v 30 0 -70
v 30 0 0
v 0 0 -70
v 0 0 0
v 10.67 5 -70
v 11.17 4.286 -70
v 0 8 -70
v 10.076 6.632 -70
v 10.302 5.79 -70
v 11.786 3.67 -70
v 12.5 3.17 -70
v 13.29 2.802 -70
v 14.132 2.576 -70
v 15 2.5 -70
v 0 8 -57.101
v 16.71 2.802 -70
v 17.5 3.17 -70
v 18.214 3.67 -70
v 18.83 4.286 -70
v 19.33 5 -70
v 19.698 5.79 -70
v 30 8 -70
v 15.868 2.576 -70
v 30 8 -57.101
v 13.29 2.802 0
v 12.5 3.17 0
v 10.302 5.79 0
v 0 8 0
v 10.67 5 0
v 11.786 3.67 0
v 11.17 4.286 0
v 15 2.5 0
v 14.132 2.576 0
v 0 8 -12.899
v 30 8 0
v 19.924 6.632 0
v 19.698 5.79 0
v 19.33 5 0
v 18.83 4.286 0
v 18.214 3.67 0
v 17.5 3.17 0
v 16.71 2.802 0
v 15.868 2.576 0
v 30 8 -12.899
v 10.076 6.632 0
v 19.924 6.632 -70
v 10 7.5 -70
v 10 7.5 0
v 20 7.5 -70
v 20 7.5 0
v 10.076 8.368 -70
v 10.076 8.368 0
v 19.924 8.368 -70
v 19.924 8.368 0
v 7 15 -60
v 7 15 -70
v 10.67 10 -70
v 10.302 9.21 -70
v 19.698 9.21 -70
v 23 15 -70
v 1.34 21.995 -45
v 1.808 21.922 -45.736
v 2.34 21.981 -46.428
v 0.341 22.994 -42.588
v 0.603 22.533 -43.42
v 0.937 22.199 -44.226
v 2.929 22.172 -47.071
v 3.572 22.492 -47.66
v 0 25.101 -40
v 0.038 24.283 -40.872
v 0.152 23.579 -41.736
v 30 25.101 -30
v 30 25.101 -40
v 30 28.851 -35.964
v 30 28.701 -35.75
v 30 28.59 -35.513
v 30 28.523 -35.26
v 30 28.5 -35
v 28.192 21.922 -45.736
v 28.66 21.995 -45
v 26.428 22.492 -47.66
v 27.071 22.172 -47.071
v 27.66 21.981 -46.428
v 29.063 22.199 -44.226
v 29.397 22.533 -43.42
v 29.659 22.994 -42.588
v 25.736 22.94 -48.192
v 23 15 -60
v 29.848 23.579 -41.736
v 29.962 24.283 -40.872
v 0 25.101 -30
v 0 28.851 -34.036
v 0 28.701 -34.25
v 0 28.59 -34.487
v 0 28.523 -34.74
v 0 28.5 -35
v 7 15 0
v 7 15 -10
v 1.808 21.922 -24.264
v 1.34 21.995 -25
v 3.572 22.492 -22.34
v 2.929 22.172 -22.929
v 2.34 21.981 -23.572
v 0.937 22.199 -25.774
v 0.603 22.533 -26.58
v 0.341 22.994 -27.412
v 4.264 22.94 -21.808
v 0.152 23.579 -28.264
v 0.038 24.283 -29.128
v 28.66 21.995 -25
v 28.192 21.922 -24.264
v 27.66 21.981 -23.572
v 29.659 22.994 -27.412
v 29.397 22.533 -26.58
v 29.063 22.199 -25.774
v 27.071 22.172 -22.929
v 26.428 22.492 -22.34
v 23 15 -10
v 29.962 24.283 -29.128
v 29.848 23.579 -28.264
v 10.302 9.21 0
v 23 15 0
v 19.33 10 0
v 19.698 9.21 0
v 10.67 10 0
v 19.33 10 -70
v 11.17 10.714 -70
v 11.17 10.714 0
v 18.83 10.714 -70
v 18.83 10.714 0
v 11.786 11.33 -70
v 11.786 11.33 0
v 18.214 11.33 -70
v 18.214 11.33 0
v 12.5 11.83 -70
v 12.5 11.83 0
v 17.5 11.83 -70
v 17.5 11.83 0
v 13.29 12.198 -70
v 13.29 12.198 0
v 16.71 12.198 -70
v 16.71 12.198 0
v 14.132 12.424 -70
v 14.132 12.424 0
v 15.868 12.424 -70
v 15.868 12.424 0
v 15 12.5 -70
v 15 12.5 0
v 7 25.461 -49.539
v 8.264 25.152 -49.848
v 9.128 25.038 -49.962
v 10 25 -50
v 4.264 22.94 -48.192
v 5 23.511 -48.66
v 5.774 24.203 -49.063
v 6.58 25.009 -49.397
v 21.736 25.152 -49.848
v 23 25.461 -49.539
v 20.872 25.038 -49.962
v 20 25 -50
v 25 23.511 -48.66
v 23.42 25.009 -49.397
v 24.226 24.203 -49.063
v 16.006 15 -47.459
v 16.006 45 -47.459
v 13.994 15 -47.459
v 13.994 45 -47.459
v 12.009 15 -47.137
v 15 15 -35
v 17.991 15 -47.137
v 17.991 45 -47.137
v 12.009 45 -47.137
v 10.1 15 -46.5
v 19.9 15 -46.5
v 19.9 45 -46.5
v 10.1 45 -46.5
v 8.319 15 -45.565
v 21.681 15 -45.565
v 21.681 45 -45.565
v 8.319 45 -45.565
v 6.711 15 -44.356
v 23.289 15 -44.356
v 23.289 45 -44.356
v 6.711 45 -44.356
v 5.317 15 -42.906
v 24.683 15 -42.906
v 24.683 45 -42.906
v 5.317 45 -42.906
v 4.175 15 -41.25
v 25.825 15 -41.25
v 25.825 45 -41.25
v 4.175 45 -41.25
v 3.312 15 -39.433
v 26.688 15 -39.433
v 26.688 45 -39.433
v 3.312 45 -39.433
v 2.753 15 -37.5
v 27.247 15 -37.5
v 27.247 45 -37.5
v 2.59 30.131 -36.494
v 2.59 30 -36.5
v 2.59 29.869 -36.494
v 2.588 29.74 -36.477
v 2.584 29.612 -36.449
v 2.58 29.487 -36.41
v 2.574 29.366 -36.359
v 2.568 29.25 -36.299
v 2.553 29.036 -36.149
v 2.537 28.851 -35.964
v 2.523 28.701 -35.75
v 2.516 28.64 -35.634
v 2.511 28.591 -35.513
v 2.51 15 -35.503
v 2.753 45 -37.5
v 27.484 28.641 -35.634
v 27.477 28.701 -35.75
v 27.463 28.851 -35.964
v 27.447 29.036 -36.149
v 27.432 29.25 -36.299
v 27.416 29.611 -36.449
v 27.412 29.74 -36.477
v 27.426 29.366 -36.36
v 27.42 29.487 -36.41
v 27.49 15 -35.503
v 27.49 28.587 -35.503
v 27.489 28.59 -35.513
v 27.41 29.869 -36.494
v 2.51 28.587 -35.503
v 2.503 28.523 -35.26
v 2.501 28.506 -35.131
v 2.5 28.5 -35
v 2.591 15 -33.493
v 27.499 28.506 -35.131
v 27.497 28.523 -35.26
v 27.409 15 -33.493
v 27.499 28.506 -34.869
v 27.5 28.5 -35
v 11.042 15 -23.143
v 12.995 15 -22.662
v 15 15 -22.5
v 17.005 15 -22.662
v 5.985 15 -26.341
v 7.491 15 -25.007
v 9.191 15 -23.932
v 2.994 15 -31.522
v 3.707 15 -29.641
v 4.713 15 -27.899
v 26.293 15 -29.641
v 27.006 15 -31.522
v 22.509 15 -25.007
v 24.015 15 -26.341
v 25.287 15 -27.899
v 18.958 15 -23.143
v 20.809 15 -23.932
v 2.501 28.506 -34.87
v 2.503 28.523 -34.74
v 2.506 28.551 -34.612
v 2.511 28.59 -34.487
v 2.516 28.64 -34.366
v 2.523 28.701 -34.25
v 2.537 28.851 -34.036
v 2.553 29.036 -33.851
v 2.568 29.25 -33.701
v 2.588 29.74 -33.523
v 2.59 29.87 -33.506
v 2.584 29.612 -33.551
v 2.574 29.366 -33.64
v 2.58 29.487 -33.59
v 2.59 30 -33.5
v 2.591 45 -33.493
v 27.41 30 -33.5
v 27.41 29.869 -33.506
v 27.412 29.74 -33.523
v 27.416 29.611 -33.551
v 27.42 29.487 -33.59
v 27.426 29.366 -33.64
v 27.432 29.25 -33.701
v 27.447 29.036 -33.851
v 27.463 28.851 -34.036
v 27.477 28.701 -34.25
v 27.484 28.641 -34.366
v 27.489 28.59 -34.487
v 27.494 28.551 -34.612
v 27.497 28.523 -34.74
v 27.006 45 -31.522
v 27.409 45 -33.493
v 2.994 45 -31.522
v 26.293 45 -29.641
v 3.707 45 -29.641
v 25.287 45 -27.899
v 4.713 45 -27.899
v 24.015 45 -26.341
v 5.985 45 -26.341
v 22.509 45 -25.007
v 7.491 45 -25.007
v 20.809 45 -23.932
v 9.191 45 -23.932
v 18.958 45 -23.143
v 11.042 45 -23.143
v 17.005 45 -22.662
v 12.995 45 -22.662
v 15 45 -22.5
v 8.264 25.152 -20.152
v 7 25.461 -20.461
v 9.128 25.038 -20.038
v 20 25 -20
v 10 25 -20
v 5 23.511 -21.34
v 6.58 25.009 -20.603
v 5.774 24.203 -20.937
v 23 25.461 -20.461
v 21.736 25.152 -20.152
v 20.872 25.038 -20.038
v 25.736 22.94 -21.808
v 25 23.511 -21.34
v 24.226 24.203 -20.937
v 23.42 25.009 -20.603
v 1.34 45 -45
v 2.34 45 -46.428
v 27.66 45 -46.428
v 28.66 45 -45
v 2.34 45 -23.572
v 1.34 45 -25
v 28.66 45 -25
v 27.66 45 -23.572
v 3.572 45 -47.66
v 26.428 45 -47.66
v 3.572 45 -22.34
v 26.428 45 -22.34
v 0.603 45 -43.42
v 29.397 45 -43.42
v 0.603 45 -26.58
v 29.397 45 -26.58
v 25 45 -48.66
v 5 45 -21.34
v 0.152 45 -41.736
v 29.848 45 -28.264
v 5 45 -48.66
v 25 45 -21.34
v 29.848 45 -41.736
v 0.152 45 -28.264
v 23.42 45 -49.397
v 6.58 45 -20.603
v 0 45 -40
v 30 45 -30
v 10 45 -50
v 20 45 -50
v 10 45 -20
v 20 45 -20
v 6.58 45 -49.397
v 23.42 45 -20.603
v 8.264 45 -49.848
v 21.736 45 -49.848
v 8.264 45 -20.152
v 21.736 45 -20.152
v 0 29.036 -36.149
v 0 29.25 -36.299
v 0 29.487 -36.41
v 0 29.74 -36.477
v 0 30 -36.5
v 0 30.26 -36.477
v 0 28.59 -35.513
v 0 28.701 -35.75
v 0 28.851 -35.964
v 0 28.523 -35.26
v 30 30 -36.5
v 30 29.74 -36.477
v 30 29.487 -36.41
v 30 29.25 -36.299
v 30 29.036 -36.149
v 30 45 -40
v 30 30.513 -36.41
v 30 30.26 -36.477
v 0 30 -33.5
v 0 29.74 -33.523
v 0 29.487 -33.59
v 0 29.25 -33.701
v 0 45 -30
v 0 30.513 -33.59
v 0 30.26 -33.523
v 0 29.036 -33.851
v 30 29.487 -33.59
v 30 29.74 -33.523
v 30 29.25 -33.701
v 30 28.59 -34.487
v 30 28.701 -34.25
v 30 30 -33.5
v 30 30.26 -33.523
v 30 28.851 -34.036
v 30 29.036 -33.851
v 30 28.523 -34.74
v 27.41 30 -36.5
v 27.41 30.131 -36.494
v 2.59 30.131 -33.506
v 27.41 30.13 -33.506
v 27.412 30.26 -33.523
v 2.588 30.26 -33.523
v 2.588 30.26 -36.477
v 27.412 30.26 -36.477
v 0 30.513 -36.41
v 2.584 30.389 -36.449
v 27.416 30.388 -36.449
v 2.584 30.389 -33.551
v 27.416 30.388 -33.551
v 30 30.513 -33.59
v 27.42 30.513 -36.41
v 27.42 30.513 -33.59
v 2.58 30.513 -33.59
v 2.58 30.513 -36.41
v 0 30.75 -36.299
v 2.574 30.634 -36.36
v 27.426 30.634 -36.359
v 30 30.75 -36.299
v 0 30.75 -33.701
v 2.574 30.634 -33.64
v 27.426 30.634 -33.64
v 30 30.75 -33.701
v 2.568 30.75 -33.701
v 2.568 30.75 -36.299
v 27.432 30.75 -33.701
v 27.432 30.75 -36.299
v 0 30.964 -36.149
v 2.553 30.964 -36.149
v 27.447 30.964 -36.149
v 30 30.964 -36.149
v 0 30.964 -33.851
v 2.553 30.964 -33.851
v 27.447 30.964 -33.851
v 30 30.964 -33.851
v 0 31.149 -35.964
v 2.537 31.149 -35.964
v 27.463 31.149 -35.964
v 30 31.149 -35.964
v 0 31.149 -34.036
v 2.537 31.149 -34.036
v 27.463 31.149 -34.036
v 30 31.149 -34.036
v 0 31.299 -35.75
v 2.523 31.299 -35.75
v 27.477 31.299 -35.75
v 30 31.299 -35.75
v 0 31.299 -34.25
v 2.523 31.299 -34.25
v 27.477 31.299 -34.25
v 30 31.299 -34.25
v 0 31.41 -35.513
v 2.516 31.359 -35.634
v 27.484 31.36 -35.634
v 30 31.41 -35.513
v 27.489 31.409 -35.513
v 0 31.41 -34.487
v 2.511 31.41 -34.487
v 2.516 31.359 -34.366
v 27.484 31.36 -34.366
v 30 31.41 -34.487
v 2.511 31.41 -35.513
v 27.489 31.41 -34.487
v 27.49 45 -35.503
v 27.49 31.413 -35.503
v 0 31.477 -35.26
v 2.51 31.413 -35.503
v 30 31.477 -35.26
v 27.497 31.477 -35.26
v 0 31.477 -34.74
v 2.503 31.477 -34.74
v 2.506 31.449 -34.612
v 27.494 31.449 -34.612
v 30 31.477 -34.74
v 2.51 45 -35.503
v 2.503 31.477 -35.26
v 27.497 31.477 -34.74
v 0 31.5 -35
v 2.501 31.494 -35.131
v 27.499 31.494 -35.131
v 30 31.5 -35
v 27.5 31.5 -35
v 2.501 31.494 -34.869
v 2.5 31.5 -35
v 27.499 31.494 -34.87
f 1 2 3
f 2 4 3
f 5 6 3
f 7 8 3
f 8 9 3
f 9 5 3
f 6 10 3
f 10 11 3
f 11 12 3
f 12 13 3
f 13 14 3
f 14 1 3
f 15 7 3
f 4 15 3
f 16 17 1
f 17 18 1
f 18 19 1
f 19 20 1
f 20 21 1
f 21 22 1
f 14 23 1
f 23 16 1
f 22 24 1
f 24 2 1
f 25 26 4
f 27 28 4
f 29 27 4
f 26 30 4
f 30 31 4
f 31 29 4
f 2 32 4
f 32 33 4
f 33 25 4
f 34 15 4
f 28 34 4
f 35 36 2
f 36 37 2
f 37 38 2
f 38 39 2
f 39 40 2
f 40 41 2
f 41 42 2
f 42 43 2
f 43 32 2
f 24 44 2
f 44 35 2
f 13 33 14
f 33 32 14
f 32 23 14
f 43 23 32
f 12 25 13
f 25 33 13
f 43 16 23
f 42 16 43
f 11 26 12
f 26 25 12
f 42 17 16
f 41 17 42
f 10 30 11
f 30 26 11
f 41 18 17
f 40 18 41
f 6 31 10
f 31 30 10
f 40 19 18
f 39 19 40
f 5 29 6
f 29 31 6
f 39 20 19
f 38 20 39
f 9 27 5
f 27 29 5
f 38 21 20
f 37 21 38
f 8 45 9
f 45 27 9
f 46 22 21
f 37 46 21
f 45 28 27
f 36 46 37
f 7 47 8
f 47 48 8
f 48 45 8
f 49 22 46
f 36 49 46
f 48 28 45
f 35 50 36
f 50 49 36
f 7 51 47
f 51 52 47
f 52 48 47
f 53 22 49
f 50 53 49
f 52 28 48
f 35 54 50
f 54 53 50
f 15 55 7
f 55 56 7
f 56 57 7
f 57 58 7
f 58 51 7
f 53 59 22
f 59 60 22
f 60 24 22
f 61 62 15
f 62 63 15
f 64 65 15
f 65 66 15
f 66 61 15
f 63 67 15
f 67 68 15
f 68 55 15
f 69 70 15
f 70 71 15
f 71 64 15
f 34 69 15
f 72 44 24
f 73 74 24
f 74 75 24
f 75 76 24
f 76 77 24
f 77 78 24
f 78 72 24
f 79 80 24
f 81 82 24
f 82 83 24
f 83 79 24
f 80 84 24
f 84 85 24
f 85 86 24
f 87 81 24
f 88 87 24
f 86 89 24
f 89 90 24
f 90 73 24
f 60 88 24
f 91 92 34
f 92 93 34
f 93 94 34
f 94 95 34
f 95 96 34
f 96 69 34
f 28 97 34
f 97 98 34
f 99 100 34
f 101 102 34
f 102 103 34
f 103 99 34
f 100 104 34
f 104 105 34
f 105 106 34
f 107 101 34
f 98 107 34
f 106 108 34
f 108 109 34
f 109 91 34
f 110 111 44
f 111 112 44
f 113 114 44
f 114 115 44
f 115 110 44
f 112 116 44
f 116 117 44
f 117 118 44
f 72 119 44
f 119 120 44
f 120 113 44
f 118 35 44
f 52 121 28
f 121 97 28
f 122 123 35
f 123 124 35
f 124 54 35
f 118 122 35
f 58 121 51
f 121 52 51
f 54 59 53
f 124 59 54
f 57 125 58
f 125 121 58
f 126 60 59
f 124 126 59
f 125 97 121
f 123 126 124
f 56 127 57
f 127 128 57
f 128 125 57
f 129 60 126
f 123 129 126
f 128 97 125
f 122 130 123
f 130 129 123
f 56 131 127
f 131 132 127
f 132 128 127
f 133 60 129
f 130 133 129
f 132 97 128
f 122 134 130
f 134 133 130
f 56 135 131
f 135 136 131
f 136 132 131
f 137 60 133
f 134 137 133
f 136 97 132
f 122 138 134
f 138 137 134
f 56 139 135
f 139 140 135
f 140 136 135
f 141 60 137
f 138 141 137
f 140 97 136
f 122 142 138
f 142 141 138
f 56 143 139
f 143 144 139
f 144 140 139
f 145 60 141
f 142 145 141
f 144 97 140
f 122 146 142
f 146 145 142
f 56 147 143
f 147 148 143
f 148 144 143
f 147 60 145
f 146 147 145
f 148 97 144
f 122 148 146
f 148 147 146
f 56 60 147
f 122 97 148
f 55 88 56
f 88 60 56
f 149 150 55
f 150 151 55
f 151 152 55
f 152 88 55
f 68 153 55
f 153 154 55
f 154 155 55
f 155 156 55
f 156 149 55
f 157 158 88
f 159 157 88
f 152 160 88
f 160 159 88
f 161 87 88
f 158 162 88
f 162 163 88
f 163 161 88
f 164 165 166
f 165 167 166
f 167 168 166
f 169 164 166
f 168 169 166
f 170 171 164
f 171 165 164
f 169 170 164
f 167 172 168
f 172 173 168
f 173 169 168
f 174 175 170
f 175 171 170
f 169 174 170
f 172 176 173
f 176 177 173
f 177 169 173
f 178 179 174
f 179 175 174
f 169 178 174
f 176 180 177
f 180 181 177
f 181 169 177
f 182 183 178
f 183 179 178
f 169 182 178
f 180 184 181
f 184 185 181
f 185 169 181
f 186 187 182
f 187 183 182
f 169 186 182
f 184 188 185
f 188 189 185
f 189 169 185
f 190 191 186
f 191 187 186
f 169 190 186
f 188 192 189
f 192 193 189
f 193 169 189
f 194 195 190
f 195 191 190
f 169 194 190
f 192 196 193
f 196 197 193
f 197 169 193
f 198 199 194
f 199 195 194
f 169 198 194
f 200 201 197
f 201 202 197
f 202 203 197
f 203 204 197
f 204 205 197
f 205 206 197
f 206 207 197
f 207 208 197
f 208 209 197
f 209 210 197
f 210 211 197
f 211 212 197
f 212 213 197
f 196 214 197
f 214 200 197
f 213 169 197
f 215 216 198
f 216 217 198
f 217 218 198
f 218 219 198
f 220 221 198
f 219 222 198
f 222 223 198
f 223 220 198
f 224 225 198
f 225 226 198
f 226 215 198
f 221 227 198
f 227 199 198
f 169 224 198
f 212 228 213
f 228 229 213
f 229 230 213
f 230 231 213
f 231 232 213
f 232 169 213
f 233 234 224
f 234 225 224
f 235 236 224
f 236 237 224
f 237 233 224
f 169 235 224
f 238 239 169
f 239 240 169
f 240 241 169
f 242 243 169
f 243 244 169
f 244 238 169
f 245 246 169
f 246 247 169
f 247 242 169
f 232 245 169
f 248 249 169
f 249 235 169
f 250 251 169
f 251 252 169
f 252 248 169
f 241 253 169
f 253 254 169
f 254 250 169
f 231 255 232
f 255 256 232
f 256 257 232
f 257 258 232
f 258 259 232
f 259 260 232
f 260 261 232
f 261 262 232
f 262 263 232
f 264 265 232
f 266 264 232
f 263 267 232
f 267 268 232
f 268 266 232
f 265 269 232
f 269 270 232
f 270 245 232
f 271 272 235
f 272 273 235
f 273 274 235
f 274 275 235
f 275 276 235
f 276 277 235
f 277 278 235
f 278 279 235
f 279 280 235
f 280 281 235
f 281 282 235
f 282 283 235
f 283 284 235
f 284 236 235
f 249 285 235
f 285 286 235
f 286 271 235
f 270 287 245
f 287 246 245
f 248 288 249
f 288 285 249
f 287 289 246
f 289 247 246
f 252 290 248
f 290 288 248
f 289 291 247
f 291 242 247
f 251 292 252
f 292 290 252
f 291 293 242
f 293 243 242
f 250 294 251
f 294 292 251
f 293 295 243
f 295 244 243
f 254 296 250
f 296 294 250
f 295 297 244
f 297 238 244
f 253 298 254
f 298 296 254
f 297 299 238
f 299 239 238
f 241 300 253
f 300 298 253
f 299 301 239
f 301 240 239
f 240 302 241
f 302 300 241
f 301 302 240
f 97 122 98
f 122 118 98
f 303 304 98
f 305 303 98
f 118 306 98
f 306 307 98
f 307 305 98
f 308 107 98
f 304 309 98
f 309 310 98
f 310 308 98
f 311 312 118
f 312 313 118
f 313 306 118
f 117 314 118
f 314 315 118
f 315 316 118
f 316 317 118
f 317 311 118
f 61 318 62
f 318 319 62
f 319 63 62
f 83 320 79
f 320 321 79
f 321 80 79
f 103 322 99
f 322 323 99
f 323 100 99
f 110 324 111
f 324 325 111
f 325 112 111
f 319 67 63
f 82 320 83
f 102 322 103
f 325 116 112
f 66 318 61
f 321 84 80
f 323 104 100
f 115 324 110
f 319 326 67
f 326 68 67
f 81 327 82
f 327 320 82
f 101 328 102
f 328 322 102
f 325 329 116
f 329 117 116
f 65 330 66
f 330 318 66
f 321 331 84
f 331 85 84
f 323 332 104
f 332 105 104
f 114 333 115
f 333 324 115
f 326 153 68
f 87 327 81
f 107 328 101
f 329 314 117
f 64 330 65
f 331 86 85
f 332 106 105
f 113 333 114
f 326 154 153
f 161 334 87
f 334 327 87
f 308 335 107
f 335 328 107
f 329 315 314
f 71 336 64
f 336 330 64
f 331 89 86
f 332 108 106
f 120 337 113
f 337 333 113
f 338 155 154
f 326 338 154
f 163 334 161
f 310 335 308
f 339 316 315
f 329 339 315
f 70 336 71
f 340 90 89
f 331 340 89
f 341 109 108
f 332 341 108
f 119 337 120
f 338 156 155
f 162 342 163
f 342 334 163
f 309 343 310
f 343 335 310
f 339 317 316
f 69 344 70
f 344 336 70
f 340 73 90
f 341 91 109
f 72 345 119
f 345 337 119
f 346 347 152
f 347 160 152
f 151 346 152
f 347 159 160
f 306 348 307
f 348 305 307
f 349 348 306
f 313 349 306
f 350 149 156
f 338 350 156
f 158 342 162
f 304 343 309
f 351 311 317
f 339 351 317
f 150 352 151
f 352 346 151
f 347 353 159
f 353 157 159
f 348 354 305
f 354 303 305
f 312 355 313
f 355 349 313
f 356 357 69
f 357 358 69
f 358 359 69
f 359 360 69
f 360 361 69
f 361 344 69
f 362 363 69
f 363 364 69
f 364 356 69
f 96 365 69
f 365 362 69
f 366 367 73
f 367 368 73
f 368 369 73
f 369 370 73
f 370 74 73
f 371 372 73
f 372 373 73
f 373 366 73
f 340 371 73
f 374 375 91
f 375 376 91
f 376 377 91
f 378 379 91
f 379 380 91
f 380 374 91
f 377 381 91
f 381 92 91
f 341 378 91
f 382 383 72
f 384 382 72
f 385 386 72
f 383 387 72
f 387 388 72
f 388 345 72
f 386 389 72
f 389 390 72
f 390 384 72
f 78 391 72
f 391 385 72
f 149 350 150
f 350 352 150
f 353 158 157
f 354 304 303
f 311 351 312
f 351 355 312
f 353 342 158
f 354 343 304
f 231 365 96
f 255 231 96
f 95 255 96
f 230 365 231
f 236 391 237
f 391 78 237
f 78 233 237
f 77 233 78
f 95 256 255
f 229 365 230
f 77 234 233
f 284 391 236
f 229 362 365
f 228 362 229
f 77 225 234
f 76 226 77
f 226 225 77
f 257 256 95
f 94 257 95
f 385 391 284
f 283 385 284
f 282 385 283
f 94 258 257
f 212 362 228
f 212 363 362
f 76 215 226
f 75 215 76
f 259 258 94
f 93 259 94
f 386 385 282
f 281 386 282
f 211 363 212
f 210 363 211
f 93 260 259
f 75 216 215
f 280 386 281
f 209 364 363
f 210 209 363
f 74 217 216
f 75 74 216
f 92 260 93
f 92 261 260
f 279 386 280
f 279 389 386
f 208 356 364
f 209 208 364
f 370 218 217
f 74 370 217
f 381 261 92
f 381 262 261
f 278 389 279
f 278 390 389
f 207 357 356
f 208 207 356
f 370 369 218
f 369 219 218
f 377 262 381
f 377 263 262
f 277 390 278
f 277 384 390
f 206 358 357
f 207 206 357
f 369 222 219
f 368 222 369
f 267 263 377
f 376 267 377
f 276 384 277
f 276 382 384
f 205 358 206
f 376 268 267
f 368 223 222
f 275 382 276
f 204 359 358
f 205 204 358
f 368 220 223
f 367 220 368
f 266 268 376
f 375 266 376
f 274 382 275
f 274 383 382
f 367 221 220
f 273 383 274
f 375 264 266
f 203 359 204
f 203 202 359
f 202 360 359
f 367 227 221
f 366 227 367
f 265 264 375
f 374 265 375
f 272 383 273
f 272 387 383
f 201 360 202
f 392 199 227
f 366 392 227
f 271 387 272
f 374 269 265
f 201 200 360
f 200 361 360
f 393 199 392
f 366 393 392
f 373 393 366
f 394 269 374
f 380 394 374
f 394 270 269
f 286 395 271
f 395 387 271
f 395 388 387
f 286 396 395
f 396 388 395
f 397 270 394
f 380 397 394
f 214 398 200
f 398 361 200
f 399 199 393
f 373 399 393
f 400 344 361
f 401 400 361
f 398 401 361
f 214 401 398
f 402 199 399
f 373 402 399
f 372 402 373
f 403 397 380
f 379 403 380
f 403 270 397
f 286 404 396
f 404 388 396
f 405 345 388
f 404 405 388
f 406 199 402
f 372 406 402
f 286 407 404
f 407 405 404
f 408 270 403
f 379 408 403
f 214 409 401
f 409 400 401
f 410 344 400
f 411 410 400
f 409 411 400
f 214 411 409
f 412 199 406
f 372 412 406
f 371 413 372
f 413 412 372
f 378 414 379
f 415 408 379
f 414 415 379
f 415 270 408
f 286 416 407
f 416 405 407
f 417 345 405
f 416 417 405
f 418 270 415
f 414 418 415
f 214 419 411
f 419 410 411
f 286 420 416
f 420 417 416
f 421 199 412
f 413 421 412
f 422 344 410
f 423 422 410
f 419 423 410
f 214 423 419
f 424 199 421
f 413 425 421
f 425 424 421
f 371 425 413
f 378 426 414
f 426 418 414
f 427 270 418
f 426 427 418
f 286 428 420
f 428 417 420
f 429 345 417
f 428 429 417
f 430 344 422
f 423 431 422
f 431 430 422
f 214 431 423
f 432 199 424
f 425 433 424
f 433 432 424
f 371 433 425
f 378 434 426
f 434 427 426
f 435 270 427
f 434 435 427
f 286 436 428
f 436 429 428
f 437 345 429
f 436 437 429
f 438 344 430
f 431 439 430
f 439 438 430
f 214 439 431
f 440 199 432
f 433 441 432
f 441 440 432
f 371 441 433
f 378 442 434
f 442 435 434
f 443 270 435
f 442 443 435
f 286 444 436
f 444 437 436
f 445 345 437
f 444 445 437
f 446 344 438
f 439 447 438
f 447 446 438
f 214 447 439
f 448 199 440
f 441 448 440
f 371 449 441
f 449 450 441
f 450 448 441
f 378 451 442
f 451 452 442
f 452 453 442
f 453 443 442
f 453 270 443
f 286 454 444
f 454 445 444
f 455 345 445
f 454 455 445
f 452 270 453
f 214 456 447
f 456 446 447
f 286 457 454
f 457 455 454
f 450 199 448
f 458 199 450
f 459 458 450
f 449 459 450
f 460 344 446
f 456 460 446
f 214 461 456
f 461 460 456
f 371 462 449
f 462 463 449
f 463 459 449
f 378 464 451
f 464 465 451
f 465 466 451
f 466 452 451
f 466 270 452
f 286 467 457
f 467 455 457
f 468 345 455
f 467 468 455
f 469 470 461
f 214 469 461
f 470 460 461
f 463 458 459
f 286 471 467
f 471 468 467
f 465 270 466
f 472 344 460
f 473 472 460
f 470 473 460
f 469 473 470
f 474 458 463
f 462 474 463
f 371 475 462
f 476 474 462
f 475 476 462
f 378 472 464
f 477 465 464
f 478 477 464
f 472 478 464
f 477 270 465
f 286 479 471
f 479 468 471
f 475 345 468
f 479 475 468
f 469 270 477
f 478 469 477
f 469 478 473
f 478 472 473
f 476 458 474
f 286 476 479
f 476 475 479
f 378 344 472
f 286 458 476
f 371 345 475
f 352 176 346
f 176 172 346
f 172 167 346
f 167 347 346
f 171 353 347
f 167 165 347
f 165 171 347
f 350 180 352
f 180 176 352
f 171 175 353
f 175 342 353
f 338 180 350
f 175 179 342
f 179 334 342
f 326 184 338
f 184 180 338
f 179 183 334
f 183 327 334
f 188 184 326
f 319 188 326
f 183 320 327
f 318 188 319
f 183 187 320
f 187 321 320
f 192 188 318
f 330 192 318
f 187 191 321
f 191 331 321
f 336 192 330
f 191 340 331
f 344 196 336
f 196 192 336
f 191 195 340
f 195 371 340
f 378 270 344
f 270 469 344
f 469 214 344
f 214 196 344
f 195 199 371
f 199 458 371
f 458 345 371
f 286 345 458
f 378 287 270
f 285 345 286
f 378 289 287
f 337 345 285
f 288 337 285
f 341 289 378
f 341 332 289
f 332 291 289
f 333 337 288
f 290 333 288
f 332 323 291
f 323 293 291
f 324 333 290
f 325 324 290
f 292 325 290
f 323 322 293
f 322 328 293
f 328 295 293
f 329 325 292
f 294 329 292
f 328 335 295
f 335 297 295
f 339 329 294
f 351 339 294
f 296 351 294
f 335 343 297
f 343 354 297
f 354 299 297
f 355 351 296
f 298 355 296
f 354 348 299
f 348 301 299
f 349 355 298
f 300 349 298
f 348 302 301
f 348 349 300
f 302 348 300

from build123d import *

# Parameters (mm, degrees)
EXTRUDE_1_DEPTH     = 30
SKETCH_2_R          = 12.5
CUT_EXTRUDE_1_DEPTH = 30
SKETCH_3_R          = 5
CUT_EXTRUDE_2_DEPTH = 89.459030065
CHAMFER_1_SIZE      = 10
FILLET_1_R          = 10
CHAMFER_2_SIZE      = 7
SKETCH_4_R          = 1.5
CUT_EXTRUDE_3_DEPTH = 89.459030065


with BuildPart() as part:
    # 草圖1 → 填料-伸長1 (new body)
    with BuildSketch(Plane(origin=(0, 0, 0), x_dir=(0, 0, -1), z_dir=(1, 0, 0))):
        Polygon((50, 15), (70, 15), (70, 0), (0, 0), (0, 15), (20, 15), (20, 45), (50, 45), align=None)
    extrude(amount=EXTRUDE_1_DEPTH)

    # 草圖2 → 除料-伸長1 (cut)
    with BuildSketch(Plane(origin=(0, 45, 0), x_dir=(1, 0, 0), z_dir=(0, 1, 0))):
        with Locations(Location((15, 35, 0), (0, 0, 270))):
            Circle(SKETCH_2_R)
    extrude(amount=-CUT_EXTRUDE_1_DEPTH, mode=Mode.SUBTRACT)

    # 草圖3 → 除料-伸長2 (cut, through all)
    with BuildSketch(Plane.XY):
        with Locations((15, 7.5)):
            Circle(SKETCH_3_R)
    extrude(amount=-CUT_EXTRUDE_2_DEPTH, mode=Mode.SUBTRACT)

    # 導角1
    chamfer_1_edges = [part.edges().sort_by_distance(p)[0] for p in [
        (15, 15, -20),
        (15, 15, -50),
    ]]
    chamfer(chamfer_1_edges, length=CHAMFER_1_SIZE)

    # 圓角1
    fillet_1_edges = [part.edges().sort_by_distance(p)[0] for p in [
        (30, 35, -20),
        (0, 35, -50),
        (30, 35, -50),
        (0, 35, -20),
    ]]
    fillet(fillet_1_edges, radius=FILLET_1_R)

    # 導角2
    chamfer_2_edges = [part.edges().sort_by_distance(p)[0] for p in [
        (0, 15, -5),
        (0, 25, -20),
        (0, 15, -65),
        (0, 25, -50),
        (30, 15, -65),
        (30, 25, -50),
        (30, 15, -5),
        (30, 25, -20),
    ]]
    chamfer(chamfer_2_edges, length=CHAMFER_2_SIZE)

    # 草圖4 → 除料-伸長3 (cut, through all)
    with BuildSketch(Plane(origin=(30, 0, 0), x_dir=(0, 0, -1), z_dir=(1, 0, 0))):
        with Locations((35, 30)):
            Circle(SKETCH_4_R)
    extrude(amount=-CUT_EXTRUDE_3_DEPTH, mode=Mode.SUBTRACT)


solid = part.part
